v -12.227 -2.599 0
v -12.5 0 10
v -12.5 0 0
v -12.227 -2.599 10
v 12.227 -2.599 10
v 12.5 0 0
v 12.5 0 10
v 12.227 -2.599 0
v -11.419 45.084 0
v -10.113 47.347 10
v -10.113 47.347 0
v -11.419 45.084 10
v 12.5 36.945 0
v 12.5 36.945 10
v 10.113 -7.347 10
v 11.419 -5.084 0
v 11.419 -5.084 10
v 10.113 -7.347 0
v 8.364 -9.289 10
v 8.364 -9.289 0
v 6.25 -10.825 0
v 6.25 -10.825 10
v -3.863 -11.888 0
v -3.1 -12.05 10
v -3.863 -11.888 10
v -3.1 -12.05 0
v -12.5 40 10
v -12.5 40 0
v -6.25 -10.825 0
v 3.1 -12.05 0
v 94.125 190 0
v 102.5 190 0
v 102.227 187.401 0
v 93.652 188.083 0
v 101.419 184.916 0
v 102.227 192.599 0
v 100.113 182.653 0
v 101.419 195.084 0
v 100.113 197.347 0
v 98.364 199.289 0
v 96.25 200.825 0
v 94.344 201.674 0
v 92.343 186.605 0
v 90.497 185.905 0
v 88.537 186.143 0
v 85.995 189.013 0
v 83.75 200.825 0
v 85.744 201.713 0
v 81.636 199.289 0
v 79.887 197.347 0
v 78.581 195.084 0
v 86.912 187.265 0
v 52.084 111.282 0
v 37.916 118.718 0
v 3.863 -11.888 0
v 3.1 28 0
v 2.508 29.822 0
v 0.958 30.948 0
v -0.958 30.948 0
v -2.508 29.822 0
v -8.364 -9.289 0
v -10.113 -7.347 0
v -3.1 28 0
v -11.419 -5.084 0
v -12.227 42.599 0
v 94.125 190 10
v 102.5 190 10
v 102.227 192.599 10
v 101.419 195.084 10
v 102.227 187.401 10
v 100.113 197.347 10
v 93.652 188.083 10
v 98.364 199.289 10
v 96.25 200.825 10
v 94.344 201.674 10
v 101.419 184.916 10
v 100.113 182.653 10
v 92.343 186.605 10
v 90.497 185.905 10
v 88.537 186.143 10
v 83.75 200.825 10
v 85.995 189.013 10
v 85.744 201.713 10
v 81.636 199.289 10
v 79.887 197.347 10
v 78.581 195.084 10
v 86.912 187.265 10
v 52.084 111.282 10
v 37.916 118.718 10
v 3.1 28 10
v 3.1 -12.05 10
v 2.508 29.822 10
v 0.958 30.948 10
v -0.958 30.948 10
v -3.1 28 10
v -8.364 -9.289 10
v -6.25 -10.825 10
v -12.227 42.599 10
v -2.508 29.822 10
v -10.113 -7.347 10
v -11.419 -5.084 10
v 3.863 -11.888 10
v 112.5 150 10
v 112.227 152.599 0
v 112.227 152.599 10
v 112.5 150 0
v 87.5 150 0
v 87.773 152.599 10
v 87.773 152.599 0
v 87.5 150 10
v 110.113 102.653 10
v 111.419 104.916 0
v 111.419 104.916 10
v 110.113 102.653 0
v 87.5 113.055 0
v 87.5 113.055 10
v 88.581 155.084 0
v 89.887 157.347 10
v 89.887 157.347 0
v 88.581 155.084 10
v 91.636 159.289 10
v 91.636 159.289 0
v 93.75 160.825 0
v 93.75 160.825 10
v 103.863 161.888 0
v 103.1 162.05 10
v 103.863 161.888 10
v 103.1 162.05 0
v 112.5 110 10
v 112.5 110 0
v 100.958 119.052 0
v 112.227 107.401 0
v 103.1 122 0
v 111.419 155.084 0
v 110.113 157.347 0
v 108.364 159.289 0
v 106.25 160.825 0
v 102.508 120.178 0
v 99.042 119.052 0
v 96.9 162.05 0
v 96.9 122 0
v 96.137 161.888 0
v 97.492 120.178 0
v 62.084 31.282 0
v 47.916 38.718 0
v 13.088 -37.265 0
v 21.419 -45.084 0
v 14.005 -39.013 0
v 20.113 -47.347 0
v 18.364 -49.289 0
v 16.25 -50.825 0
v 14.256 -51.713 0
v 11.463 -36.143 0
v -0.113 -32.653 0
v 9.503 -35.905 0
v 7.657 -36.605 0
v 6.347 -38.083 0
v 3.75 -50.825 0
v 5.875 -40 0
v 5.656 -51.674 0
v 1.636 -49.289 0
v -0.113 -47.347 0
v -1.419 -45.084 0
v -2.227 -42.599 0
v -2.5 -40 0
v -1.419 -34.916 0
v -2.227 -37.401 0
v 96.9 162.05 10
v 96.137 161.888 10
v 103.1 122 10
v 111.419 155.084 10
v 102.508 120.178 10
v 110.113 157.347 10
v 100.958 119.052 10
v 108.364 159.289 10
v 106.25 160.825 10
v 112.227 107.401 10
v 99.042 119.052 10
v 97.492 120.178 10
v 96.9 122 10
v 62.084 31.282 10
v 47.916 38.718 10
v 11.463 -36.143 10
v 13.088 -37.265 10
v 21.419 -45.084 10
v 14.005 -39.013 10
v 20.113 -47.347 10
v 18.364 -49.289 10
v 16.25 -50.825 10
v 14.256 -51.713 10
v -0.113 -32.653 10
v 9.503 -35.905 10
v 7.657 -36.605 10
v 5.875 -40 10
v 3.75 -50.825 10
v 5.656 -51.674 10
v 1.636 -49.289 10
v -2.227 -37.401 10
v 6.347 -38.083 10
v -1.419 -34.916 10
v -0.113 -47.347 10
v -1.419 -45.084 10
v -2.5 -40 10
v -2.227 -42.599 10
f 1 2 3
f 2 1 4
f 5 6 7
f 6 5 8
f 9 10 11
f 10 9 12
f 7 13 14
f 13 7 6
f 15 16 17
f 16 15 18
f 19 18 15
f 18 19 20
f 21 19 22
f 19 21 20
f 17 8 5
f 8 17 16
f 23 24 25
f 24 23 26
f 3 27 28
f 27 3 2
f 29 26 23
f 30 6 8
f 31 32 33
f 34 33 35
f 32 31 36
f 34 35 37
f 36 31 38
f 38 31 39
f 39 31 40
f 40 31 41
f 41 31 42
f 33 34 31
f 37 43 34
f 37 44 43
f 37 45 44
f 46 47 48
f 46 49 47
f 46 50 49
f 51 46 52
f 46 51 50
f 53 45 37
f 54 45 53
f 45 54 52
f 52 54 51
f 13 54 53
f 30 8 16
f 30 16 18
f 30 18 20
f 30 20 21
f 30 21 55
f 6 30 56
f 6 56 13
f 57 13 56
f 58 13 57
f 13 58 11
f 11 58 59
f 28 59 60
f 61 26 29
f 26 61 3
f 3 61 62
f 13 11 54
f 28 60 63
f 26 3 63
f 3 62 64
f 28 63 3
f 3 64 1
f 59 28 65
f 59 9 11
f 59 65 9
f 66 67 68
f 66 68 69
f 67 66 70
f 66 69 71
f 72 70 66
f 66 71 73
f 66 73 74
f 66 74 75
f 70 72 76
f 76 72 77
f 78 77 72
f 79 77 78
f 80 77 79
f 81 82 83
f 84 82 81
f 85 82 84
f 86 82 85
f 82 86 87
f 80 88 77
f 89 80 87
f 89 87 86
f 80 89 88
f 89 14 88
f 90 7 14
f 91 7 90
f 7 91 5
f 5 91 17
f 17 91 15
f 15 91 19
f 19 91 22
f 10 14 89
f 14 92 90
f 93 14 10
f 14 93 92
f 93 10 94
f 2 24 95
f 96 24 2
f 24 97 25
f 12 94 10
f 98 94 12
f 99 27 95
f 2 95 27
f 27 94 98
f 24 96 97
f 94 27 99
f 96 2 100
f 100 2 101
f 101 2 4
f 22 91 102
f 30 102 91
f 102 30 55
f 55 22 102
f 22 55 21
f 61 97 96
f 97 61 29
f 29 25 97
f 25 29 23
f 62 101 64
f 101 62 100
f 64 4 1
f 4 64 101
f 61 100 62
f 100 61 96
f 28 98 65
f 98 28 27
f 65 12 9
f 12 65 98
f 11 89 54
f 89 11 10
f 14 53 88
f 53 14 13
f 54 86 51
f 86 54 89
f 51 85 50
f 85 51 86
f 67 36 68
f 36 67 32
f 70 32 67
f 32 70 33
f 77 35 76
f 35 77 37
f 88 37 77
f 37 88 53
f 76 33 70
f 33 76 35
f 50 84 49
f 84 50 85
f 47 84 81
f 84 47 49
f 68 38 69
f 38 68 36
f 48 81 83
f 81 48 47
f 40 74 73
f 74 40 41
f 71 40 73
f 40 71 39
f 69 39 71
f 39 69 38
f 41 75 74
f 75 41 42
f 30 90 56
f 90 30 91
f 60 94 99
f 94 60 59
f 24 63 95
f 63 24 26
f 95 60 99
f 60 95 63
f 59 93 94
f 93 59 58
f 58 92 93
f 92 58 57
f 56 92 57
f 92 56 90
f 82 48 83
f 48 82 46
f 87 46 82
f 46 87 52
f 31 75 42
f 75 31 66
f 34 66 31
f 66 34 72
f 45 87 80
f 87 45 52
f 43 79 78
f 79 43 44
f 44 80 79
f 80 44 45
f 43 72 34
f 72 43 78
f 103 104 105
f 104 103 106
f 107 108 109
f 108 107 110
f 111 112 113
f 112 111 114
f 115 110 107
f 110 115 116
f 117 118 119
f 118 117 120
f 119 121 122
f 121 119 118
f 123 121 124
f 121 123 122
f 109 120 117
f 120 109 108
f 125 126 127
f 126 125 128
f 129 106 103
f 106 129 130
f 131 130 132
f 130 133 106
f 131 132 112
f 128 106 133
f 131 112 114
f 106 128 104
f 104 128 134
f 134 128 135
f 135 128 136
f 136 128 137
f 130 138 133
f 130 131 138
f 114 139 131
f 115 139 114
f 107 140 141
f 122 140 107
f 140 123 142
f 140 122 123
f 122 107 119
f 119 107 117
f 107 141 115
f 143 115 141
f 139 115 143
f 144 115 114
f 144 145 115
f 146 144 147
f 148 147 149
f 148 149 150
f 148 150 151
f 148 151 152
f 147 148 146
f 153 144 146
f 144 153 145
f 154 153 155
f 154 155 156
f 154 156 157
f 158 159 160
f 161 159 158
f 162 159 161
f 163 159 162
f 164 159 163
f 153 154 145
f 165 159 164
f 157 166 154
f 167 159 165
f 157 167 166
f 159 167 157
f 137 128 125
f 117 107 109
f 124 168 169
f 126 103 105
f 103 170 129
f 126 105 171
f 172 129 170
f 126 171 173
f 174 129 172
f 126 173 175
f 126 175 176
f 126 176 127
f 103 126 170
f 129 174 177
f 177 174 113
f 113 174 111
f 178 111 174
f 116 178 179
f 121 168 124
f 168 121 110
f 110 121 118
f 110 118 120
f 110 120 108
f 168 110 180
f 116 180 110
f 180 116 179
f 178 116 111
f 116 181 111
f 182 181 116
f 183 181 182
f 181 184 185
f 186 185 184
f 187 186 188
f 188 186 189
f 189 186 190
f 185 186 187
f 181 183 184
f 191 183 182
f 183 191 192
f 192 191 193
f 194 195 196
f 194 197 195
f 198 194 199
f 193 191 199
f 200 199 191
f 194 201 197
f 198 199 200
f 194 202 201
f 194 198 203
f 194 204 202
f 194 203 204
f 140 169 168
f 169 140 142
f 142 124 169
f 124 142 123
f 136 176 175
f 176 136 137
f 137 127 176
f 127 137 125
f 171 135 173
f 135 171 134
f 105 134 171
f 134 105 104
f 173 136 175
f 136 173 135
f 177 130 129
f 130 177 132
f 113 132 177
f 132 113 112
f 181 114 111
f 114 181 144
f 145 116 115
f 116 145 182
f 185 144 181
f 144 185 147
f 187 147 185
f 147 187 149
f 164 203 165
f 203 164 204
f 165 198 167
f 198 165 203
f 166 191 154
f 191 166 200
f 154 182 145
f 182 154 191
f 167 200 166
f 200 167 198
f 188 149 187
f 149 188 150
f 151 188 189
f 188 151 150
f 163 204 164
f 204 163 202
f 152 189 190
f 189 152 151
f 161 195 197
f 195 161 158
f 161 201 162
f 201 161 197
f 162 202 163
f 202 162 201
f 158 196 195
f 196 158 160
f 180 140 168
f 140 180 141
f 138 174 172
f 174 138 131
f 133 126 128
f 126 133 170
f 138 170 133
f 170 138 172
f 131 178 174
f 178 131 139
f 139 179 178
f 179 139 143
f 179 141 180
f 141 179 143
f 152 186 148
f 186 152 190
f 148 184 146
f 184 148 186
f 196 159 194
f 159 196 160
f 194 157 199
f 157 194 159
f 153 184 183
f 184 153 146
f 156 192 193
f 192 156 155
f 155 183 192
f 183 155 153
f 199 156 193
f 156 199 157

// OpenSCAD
/**
 * i3 Spool holder
 * 
 * Created by Diego Viejo
 * 
 */

height = 10;
dist = 90;

holder();

translate([100,150,0]) rotate(180) holder();

module holder()
difference()
{
    nestedHull()
    {
        cylinder(d=25, h=height);
        translate([0,40,0]) cylinder(d=25, h=height);
        translate([dist/2,150/2+40,0]) cylinder(d=16, h=height);
        translate([dist,150+40,0]) cylinder(d=25, h=height);
        
    }
    
    hull()
    {
        translate([0, -20, -1]) cylinder(d=6.2, h=height+2);
        translate([0, 40-24/2, -1]) cylinder(d=6.2, h=height+2);
    }
    
    hull()
    {
        translate([dist, 150+40, -1]) cylinder(d=8.25, h=height+2);
        translate([dist, 170+40, -1]) cylinder(d=9, h=height+2);
    }
}

//auxiliary method
module nestedHull()
{
  for(i=[0:$children-2])
    hull()
    {
      children(i);
      children(i+1);
    }
}
